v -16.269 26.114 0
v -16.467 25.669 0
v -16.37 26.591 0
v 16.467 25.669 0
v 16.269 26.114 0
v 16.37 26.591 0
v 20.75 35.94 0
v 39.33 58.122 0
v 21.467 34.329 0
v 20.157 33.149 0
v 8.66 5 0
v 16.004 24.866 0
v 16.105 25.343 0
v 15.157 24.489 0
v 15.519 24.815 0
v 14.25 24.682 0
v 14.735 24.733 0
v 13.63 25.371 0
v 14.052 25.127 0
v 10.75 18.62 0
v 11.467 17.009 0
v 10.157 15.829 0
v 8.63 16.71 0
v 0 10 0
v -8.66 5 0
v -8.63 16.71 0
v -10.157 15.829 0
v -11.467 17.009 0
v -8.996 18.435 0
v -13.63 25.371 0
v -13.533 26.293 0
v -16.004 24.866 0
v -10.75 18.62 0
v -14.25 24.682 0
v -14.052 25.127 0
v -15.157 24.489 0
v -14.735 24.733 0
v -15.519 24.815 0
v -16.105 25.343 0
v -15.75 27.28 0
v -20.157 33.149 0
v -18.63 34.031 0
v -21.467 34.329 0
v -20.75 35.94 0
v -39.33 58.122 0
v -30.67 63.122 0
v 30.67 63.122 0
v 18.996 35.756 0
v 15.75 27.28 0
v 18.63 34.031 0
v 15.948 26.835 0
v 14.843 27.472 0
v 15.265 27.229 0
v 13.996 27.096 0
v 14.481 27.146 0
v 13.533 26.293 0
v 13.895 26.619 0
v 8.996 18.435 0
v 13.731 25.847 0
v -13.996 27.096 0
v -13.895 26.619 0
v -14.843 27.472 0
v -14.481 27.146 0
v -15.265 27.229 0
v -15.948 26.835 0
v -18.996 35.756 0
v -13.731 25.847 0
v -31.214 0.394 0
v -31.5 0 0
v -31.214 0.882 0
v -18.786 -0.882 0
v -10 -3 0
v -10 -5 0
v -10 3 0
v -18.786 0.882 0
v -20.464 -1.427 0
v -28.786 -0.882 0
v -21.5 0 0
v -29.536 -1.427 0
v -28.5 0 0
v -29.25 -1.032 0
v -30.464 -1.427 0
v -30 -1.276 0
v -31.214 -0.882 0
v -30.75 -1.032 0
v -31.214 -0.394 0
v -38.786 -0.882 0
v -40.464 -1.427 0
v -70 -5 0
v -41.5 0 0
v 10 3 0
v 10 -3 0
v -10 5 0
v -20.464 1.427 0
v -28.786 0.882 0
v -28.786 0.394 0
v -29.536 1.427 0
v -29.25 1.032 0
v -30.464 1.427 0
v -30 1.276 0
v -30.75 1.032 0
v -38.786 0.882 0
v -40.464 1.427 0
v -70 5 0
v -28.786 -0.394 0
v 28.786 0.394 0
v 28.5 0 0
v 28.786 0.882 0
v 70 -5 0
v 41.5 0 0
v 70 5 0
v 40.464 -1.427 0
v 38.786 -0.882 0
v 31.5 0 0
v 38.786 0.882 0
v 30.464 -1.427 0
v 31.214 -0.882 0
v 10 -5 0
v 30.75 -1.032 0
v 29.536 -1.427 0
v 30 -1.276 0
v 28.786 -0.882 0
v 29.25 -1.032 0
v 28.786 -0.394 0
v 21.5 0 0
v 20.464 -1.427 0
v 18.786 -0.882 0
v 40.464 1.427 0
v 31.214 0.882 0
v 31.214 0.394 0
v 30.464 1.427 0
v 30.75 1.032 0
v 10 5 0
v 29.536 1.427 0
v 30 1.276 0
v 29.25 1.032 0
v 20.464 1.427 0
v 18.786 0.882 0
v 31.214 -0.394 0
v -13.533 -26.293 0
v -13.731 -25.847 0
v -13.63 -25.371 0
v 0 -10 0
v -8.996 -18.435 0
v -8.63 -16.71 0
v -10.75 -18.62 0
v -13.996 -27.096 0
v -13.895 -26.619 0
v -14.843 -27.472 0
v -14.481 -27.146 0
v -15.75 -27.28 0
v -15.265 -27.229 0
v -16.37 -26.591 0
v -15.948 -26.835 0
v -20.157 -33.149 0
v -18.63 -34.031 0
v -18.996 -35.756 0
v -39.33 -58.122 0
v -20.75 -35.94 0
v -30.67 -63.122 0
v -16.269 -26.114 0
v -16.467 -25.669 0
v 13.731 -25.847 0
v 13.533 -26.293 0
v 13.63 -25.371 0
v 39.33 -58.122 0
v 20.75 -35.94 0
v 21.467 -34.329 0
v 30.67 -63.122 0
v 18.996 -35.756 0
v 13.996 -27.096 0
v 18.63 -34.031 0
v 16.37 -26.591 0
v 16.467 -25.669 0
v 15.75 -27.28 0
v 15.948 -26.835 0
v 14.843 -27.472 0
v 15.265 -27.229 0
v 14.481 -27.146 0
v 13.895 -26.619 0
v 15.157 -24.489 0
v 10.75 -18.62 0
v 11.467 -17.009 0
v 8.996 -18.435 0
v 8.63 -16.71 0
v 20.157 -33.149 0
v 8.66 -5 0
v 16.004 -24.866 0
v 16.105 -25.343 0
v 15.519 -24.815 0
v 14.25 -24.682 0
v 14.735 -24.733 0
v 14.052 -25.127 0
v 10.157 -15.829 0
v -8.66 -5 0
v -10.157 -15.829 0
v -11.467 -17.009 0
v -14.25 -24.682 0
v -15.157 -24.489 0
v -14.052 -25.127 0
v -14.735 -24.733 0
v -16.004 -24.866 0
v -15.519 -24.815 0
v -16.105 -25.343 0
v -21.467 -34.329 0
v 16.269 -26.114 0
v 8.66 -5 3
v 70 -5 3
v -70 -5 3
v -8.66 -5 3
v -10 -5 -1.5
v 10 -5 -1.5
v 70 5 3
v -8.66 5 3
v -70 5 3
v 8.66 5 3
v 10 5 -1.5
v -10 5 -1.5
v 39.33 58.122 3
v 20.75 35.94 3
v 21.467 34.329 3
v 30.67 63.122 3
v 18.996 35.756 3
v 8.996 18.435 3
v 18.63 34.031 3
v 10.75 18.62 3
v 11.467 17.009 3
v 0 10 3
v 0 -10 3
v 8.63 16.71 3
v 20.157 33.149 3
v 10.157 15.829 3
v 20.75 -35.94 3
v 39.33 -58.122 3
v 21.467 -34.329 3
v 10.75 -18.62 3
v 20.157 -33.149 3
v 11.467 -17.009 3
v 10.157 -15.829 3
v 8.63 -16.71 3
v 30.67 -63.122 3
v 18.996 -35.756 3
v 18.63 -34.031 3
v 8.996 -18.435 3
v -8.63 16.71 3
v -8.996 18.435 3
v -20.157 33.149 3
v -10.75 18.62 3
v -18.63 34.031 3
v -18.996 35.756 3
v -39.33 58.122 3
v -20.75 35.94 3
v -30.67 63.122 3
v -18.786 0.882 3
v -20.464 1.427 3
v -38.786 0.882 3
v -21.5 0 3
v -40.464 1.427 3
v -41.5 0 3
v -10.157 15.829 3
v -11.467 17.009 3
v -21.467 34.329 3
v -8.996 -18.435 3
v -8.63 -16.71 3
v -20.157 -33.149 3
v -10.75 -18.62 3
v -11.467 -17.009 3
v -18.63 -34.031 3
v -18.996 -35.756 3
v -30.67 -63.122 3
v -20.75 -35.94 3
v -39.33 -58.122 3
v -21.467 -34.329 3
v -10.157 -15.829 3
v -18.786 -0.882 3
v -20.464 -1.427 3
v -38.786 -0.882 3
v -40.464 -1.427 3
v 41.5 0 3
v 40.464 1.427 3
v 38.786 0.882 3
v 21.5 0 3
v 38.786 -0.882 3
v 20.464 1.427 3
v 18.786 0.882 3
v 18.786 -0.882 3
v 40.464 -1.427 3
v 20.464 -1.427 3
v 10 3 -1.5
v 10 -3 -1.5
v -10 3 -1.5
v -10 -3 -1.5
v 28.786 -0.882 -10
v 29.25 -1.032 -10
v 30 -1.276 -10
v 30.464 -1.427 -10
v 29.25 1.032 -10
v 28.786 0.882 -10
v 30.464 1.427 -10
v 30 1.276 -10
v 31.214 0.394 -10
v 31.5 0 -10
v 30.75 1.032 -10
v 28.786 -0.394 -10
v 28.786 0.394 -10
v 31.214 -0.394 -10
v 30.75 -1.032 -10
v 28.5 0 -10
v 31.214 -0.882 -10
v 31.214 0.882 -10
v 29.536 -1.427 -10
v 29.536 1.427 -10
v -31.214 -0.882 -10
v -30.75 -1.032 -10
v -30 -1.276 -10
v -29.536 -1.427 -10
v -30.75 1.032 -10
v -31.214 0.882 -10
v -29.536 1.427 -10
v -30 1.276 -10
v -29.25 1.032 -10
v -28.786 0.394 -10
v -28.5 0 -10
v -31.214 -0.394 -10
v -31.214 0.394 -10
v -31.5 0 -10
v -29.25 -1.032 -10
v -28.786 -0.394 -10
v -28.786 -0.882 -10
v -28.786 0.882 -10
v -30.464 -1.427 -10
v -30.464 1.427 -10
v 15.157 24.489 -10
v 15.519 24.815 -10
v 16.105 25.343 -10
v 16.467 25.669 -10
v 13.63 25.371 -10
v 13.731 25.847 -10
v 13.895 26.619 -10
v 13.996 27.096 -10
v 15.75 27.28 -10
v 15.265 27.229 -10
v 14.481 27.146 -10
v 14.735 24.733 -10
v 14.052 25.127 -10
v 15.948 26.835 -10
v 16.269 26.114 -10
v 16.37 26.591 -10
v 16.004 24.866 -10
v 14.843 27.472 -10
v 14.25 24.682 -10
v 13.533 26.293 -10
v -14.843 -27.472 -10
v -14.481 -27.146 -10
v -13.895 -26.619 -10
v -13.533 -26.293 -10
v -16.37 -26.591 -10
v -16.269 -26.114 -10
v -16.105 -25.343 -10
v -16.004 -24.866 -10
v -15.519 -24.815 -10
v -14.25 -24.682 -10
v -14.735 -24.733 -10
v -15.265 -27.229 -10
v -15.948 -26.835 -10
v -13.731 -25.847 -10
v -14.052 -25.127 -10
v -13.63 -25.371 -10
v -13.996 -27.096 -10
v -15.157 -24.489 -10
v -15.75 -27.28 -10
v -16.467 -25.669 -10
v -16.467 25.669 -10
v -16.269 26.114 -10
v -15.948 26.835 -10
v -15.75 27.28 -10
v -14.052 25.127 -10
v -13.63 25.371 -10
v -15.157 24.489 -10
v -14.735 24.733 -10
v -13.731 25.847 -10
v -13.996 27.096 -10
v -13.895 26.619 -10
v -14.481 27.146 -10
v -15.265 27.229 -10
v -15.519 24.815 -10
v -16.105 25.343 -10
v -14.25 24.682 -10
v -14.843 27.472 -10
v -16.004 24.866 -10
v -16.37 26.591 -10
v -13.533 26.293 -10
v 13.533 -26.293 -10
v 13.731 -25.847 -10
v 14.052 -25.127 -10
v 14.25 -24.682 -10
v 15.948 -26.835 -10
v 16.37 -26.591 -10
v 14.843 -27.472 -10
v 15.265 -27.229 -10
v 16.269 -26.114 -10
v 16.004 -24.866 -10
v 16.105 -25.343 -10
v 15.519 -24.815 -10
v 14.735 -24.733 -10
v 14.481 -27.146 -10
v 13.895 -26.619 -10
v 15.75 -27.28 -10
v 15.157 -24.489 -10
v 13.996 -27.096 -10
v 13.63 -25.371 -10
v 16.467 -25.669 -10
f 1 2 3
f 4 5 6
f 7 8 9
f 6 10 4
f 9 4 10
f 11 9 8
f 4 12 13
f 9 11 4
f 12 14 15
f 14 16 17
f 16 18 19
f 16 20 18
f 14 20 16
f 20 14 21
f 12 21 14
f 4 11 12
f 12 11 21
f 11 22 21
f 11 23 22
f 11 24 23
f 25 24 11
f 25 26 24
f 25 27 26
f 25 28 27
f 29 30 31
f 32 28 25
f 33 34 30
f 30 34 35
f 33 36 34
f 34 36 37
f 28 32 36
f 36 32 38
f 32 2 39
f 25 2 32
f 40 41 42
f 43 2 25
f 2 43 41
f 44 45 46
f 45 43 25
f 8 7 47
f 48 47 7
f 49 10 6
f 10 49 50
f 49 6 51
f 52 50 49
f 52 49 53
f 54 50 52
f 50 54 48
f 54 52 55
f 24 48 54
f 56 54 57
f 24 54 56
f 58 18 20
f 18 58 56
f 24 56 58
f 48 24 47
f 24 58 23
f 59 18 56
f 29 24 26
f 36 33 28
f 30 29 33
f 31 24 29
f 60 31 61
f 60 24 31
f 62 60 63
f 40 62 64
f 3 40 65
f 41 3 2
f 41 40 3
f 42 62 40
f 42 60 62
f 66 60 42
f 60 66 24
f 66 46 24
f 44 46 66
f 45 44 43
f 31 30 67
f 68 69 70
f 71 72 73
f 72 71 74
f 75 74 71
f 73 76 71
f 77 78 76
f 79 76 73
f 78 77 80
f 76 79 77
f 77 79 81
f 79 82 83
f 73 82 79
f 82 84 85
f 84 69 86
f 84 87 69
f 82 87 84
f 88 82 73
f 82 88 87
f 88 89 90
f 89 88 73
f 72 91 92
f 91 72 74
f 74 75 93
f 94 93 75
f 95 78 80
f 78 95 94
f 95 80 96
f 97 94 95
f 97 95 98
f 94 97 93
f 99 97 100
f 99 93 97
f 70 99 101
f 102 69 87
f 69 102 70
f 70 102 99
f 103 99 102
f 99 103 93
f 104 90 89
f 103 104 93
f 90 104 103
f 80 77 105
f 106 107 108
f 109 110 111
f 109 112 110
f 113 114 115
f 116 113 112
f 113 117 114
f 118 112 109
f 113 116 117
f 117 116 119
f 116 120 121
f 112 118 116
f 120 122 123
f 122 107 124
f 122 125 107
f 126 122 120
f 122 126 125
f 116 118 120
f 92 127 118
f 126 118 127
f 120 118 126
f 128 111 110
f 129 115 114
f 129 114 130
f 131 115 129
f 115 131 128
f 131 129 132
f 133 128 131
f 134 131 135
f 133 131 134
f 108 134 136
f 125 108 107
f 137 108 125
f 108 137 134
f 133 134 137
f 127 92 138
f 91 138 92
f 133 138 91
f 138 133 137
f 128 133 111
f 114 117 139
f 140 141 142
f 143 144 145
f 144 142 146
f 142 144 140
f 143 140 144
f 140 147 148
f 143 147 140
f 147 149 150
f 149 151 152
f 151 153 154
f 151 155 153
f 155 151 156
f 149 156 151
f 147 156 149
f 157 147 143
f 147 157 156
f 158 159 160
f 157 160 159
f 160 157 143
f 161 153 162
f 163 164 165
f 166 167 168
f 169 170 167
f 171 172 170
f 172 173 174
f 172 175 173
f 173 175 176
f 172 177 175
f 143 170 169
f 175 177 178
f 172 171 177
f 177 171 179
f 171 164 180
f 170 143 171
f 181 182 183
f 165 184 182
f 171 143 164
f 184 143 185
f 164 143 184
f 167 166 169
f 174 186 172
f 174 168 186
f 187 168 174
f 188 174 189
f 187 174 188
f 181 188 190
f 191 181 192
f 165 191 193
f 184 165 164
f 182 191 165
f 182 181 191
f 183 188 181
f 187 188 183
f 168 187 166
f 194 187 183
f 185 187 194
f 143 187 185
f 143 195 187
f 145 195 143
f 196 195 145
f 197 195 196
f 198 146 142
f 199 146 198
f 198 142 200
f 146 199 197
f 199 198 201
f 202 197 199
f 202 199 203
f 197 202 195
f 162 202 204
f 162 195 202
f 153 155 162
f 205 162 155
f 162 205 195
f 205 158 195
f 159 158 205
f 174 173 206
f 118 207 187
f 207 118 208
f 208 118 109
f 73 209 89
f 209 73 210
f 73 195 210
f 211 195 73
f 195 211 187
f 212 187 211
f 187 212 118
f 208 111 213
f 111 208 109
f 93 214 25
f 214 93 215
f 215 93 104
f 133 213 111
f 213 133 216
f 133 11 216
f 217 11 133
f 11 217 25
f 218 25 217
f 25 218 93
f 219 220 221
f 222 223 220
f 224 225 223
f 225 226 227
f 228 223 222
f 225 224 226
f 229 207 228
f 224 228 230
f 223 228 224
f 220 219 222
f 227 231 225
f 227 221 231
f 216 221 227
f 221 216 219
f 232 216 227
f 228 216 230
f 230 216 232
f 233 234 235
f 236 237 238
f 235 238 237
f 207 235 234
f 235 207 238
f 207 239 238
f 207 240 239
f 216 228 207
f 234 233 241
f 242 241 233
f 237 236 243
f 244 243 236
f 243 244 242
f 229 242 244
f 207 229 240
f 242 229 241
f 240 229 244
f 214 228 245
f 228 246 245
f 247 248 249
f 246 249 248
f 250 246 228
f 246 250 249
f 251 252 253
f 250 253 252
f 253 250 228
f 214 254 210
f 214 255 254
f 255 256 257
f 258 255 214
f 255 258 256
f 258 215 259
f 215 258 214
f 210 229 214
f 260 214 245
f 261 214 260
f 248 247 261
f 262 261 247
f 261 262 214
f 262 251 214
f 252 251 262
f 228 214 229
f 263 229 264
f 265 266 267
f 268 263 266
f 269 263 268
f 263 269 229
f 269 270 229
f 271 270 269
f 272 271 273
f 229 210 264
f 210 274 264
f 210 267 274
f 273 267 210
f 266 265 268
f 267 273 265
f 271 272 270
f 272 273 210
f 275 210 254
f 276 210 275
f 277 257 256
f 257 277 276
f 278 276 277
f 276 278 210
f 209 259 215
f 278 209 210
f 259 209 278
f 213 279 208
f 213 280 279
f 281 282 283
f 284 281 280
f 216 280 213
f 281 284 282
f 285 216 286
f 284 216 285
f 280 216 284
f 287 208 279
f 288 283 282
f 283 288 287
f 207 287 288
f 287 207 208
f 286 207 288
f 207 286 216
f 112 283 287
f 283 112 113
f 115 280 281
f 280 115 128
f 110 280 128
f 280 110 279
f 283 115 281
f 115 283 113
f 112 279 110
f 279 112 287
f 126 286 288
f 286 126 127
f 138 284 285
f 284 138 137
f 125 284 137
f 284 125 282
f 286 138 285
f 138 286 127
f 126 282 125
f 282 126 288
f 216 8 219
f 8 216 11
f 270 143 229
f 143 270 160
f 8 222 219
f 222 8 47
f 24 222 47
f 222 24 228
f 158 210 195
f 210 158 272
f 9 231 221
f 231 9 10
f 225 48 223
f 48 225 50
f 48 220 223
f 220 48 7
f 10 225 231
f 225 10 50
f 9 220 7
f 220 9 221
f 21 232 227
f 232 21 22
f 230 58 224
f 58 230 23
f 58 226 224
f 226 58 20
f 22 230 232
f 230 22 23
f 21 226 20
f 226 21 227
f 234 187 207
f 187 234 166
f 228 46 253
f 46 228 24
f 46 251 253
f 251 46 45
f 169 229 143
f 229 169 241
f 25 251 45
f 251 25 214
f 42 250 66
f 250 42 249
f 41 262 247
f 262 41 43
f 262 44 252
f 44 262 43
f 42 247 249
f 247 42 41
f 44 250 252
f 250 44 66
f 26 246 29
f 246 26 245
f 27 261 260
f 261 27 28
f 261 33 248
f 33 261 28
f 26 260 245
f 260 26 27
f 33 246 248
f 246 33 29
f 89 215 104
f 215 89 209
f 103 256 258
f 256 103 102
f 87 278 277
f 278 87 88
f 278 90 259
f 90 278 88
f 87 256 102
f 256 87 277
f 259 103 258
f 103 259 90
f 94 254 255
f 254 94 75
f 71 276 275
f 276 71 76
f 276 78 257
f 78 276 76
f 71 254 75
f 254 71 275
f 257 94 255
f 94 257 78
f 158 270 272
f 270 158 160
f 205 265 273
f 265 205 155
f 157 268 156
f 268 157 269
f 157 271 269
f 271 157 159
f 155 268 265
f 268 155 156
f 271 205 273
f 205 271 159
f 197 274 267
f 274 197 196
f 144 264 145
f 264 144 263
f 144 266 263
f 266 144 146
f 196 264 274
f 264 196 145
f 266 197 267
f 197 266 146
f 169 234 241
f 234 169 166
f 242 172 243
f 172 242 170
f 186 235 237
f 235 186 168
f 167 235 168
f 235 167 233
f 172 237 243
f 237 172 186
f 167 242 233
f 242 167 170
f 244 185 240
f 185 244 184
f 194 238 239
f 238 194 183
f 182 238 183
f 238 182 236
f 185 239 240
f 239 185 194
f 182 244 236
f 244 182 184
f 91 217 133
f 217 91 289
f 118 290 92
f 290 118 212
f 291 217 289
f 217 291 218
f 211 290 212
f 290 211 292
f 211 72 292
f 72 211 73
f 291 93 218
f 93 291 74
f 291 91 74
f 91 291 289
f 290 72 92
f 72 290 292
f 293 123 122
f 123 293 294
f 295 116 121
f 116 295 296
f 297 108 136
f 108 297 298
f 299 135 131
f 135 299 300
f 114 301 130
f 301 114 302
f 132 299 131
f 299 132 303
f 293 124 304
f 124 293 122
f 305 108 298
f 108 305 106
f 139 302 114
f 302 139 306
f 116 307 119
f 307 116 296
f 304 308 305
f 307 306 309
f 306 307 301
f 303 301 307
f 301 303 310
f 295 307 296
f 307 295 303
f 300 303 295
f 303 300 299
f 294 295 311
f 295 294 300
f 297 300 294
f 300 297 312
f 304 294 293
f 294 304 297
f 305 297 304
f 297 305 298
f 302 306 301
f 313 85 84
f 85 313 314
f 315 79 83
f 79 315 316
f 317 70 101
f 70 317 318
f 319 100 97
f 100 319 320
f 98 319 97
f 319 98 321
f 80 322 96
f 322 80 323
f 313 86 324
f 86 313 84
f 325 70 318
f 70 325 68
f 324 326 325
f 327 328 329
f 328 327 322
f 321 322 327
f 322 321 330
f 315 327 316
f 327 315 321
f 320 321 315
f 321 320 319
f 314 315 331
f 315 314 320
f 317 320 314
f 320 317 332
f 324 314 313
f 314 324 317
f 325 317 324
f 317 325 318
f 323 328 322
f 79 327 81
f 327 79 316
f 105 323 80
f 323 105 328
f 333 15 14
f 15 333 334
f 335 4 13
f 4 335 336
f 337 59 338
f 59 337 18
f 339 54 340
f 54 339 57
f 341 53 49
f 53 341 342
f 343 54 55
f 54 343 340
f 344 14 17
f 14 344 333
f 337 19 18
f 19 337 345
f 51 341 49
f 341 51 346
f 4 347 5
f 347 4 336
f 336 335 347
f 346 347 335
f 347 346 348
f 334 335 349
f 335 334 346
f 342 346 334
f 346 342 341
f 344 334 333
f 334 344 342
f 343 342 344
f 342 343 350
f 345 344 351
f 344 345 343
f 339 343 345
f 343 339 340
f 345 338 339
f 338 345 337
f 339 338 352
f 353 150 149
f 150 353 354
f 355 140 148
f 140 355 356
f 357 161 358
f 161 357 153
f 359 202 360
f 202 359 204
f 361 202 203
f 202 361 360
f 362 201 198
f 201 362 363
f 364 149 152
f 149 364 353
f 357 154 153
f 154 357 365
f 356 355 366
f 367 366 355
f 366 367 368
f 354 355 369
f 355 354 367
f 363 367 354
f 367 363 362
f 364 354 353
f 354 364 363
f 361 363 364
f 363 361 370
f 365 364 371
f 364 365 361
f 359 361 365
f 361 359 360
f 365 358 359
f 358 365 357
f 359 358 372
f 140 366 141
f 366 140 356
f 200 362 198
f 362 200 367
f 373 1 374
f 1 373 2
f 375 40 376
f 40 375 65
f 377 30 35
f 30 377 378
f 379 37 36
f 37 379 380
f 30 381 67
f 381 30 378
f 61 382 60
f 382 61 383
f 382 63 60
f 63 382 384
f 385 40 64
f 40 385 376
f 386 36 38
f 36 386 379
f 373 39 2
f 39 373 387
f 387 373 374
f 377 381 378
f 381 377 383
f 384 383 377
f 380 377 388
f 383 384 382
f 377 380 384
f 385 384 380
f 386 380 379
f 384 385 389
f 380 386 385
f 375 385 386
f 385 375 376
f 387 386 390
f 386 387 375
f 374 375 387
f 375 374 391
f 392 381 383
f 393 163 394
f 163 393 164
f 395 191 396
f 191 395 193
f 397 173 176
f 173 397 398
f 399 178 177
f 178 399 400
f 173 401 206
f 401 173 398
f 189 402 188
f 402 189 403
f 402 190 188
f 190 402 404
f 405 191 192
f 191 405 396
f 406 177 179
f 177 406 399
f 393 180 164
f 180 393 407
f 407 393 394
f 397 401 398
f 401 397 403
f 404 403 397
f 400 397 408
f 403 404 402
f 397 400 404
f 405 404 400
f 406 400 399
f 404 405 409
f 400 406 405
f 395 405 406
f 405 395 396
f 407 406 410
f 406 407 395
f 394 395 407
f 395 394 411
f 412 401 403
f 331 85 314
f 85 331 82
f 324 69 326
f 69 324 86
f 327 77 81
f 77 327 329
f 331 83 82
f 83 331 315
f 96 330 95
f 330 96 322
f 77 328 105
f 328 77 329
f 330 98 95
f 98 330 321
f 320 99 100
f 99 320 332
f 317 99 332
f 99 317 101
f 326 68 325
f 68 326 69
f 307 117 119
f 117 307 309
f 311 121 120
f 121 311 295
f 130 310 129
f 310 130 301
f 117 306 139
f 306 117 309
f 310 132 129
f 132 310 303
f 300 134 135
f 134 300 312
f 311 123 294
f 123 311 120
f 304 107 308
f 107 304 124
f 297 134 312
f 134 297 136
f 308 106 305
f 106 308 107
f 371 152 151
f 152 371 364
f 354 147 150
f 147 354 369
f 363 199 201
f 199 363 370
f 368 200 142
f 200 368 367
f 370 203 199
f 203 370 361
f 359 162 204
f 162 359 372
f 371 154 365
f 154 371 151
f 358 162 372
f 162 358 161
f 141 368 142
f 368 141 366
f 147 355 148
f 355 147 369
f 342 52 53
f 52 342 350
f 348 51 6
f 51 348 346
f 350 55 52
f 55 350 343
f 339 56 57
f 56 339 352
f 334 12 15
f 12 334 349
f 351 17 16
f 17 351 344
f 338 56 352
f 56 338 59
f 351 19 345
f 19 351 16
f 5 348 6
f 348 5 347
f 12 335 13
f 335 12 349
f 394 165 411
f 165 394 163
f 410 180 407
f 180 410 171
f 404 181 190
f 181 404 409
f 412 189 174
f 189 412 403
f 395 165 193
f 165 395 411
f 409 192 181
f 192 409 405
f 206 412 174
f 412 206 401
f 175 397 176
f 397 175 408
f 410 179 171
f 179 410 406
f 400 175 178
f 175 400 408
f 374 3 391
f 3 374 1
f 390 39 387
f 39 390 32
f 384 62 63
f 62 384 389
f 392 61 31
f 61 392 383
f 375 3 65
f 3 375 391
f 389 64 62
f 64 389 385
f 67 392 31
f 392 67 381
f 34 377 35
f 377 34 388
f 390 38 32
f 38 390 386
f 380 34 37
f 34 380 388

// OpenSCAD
// Parameters
bracket_thickness = 3; // Reduced thickness for smoother edges
bracket_hole_diameter = 3;
bracket_long_arm_length = 40;
bracket_short_arm_length = 20;
bracket_width = 10;

spacer_length = 20;
spacer_width = 10;
spacer_thickness = 3; // Reduced thickness to match original design
spacer_slot_width = 6; // Increased slot width to match original design

fastener_diameter = 3;
fastener_length = 10; // Shortened fastener length to match original design

// Bracket module
module bracket() {
    difference() {
        union() {
            // Long arm with rounded edges
            hull() {
                translate([bracket_long_arm_length / 2, 0, 0])
                    cube([bracket_long_arm_length, bracket_width, bracket_thickness], center = true);
                translate([-bracket_long_arm_length / 2, 0, 0])
                    cube([bracket_long_arm_length, bracket_width, bracket_thickness], center = true);
            }
            // Short arm with rounded edges
            translate([-(bracket_long_arm_length / 2 - bracket_short_arm_length / 2), 0, 0])
                hull() {
                    cube([bracket_short_arm_length, bracket_width, bracket_thickness], center = true);
                    translate([bracket_short_arm_length, 0, 0])
                        cube([bracket_short_arm_length, bracket_width, bracket_thickness], center = true);
                }
        }
        // Holes
        translate([bracket_long_arm_length / 4, 0, 0])
            cylinder(h = bracket_thickness + 1, d = bracket_hole_diameter, center = true);
        translate([-bracket_long_arm_length / 4, 0, 0])
            cylinder(h = bracket_thickness + 1, d = bracket_hole_diameter, center = true);
        translate([-(bracket_long_arm_length / 2 - bracket_short_arm_length / 2), 0, 0])
            cylinder(h = bracket_thickness + 1, d = bracket_hole_diameter, center = true);
    }
}

// Spacer module
module spacer() {
    difference() {
        cube([spacer_length, spacer_width, spacer_thickness], center = true);
        translate([0, 0, 0])
            cube([spacer_length, spacer_slot_width, spacer_thickness + 1], center = true);
    }
}

// Fastener module
module fastener() {
    cylinder(h = fastener_length, d = fastener_diameter, center = true);
}

// Assembly
module assembly() {
    // Layer 1: Brackets
    for (i = [0:5]) {
        rotate([0, 0, i * 60])
            translate([30, 0, bracket_thickness / 2])
                bracket();
    }

    // Layer 2: Spacer
    spacer();

    // Layer 3: Fasteners
    for (i = [0:5]) {
        rotate([0, 0, i * 60])
            translate([30, 0, -fastener_length / 2])
                fastener();
        rotate([0, 0, i * 60])
            translate([-30, 0, -fastener_length / 2])
                fastener();
    }
}

// Render the assembly
assembly();
